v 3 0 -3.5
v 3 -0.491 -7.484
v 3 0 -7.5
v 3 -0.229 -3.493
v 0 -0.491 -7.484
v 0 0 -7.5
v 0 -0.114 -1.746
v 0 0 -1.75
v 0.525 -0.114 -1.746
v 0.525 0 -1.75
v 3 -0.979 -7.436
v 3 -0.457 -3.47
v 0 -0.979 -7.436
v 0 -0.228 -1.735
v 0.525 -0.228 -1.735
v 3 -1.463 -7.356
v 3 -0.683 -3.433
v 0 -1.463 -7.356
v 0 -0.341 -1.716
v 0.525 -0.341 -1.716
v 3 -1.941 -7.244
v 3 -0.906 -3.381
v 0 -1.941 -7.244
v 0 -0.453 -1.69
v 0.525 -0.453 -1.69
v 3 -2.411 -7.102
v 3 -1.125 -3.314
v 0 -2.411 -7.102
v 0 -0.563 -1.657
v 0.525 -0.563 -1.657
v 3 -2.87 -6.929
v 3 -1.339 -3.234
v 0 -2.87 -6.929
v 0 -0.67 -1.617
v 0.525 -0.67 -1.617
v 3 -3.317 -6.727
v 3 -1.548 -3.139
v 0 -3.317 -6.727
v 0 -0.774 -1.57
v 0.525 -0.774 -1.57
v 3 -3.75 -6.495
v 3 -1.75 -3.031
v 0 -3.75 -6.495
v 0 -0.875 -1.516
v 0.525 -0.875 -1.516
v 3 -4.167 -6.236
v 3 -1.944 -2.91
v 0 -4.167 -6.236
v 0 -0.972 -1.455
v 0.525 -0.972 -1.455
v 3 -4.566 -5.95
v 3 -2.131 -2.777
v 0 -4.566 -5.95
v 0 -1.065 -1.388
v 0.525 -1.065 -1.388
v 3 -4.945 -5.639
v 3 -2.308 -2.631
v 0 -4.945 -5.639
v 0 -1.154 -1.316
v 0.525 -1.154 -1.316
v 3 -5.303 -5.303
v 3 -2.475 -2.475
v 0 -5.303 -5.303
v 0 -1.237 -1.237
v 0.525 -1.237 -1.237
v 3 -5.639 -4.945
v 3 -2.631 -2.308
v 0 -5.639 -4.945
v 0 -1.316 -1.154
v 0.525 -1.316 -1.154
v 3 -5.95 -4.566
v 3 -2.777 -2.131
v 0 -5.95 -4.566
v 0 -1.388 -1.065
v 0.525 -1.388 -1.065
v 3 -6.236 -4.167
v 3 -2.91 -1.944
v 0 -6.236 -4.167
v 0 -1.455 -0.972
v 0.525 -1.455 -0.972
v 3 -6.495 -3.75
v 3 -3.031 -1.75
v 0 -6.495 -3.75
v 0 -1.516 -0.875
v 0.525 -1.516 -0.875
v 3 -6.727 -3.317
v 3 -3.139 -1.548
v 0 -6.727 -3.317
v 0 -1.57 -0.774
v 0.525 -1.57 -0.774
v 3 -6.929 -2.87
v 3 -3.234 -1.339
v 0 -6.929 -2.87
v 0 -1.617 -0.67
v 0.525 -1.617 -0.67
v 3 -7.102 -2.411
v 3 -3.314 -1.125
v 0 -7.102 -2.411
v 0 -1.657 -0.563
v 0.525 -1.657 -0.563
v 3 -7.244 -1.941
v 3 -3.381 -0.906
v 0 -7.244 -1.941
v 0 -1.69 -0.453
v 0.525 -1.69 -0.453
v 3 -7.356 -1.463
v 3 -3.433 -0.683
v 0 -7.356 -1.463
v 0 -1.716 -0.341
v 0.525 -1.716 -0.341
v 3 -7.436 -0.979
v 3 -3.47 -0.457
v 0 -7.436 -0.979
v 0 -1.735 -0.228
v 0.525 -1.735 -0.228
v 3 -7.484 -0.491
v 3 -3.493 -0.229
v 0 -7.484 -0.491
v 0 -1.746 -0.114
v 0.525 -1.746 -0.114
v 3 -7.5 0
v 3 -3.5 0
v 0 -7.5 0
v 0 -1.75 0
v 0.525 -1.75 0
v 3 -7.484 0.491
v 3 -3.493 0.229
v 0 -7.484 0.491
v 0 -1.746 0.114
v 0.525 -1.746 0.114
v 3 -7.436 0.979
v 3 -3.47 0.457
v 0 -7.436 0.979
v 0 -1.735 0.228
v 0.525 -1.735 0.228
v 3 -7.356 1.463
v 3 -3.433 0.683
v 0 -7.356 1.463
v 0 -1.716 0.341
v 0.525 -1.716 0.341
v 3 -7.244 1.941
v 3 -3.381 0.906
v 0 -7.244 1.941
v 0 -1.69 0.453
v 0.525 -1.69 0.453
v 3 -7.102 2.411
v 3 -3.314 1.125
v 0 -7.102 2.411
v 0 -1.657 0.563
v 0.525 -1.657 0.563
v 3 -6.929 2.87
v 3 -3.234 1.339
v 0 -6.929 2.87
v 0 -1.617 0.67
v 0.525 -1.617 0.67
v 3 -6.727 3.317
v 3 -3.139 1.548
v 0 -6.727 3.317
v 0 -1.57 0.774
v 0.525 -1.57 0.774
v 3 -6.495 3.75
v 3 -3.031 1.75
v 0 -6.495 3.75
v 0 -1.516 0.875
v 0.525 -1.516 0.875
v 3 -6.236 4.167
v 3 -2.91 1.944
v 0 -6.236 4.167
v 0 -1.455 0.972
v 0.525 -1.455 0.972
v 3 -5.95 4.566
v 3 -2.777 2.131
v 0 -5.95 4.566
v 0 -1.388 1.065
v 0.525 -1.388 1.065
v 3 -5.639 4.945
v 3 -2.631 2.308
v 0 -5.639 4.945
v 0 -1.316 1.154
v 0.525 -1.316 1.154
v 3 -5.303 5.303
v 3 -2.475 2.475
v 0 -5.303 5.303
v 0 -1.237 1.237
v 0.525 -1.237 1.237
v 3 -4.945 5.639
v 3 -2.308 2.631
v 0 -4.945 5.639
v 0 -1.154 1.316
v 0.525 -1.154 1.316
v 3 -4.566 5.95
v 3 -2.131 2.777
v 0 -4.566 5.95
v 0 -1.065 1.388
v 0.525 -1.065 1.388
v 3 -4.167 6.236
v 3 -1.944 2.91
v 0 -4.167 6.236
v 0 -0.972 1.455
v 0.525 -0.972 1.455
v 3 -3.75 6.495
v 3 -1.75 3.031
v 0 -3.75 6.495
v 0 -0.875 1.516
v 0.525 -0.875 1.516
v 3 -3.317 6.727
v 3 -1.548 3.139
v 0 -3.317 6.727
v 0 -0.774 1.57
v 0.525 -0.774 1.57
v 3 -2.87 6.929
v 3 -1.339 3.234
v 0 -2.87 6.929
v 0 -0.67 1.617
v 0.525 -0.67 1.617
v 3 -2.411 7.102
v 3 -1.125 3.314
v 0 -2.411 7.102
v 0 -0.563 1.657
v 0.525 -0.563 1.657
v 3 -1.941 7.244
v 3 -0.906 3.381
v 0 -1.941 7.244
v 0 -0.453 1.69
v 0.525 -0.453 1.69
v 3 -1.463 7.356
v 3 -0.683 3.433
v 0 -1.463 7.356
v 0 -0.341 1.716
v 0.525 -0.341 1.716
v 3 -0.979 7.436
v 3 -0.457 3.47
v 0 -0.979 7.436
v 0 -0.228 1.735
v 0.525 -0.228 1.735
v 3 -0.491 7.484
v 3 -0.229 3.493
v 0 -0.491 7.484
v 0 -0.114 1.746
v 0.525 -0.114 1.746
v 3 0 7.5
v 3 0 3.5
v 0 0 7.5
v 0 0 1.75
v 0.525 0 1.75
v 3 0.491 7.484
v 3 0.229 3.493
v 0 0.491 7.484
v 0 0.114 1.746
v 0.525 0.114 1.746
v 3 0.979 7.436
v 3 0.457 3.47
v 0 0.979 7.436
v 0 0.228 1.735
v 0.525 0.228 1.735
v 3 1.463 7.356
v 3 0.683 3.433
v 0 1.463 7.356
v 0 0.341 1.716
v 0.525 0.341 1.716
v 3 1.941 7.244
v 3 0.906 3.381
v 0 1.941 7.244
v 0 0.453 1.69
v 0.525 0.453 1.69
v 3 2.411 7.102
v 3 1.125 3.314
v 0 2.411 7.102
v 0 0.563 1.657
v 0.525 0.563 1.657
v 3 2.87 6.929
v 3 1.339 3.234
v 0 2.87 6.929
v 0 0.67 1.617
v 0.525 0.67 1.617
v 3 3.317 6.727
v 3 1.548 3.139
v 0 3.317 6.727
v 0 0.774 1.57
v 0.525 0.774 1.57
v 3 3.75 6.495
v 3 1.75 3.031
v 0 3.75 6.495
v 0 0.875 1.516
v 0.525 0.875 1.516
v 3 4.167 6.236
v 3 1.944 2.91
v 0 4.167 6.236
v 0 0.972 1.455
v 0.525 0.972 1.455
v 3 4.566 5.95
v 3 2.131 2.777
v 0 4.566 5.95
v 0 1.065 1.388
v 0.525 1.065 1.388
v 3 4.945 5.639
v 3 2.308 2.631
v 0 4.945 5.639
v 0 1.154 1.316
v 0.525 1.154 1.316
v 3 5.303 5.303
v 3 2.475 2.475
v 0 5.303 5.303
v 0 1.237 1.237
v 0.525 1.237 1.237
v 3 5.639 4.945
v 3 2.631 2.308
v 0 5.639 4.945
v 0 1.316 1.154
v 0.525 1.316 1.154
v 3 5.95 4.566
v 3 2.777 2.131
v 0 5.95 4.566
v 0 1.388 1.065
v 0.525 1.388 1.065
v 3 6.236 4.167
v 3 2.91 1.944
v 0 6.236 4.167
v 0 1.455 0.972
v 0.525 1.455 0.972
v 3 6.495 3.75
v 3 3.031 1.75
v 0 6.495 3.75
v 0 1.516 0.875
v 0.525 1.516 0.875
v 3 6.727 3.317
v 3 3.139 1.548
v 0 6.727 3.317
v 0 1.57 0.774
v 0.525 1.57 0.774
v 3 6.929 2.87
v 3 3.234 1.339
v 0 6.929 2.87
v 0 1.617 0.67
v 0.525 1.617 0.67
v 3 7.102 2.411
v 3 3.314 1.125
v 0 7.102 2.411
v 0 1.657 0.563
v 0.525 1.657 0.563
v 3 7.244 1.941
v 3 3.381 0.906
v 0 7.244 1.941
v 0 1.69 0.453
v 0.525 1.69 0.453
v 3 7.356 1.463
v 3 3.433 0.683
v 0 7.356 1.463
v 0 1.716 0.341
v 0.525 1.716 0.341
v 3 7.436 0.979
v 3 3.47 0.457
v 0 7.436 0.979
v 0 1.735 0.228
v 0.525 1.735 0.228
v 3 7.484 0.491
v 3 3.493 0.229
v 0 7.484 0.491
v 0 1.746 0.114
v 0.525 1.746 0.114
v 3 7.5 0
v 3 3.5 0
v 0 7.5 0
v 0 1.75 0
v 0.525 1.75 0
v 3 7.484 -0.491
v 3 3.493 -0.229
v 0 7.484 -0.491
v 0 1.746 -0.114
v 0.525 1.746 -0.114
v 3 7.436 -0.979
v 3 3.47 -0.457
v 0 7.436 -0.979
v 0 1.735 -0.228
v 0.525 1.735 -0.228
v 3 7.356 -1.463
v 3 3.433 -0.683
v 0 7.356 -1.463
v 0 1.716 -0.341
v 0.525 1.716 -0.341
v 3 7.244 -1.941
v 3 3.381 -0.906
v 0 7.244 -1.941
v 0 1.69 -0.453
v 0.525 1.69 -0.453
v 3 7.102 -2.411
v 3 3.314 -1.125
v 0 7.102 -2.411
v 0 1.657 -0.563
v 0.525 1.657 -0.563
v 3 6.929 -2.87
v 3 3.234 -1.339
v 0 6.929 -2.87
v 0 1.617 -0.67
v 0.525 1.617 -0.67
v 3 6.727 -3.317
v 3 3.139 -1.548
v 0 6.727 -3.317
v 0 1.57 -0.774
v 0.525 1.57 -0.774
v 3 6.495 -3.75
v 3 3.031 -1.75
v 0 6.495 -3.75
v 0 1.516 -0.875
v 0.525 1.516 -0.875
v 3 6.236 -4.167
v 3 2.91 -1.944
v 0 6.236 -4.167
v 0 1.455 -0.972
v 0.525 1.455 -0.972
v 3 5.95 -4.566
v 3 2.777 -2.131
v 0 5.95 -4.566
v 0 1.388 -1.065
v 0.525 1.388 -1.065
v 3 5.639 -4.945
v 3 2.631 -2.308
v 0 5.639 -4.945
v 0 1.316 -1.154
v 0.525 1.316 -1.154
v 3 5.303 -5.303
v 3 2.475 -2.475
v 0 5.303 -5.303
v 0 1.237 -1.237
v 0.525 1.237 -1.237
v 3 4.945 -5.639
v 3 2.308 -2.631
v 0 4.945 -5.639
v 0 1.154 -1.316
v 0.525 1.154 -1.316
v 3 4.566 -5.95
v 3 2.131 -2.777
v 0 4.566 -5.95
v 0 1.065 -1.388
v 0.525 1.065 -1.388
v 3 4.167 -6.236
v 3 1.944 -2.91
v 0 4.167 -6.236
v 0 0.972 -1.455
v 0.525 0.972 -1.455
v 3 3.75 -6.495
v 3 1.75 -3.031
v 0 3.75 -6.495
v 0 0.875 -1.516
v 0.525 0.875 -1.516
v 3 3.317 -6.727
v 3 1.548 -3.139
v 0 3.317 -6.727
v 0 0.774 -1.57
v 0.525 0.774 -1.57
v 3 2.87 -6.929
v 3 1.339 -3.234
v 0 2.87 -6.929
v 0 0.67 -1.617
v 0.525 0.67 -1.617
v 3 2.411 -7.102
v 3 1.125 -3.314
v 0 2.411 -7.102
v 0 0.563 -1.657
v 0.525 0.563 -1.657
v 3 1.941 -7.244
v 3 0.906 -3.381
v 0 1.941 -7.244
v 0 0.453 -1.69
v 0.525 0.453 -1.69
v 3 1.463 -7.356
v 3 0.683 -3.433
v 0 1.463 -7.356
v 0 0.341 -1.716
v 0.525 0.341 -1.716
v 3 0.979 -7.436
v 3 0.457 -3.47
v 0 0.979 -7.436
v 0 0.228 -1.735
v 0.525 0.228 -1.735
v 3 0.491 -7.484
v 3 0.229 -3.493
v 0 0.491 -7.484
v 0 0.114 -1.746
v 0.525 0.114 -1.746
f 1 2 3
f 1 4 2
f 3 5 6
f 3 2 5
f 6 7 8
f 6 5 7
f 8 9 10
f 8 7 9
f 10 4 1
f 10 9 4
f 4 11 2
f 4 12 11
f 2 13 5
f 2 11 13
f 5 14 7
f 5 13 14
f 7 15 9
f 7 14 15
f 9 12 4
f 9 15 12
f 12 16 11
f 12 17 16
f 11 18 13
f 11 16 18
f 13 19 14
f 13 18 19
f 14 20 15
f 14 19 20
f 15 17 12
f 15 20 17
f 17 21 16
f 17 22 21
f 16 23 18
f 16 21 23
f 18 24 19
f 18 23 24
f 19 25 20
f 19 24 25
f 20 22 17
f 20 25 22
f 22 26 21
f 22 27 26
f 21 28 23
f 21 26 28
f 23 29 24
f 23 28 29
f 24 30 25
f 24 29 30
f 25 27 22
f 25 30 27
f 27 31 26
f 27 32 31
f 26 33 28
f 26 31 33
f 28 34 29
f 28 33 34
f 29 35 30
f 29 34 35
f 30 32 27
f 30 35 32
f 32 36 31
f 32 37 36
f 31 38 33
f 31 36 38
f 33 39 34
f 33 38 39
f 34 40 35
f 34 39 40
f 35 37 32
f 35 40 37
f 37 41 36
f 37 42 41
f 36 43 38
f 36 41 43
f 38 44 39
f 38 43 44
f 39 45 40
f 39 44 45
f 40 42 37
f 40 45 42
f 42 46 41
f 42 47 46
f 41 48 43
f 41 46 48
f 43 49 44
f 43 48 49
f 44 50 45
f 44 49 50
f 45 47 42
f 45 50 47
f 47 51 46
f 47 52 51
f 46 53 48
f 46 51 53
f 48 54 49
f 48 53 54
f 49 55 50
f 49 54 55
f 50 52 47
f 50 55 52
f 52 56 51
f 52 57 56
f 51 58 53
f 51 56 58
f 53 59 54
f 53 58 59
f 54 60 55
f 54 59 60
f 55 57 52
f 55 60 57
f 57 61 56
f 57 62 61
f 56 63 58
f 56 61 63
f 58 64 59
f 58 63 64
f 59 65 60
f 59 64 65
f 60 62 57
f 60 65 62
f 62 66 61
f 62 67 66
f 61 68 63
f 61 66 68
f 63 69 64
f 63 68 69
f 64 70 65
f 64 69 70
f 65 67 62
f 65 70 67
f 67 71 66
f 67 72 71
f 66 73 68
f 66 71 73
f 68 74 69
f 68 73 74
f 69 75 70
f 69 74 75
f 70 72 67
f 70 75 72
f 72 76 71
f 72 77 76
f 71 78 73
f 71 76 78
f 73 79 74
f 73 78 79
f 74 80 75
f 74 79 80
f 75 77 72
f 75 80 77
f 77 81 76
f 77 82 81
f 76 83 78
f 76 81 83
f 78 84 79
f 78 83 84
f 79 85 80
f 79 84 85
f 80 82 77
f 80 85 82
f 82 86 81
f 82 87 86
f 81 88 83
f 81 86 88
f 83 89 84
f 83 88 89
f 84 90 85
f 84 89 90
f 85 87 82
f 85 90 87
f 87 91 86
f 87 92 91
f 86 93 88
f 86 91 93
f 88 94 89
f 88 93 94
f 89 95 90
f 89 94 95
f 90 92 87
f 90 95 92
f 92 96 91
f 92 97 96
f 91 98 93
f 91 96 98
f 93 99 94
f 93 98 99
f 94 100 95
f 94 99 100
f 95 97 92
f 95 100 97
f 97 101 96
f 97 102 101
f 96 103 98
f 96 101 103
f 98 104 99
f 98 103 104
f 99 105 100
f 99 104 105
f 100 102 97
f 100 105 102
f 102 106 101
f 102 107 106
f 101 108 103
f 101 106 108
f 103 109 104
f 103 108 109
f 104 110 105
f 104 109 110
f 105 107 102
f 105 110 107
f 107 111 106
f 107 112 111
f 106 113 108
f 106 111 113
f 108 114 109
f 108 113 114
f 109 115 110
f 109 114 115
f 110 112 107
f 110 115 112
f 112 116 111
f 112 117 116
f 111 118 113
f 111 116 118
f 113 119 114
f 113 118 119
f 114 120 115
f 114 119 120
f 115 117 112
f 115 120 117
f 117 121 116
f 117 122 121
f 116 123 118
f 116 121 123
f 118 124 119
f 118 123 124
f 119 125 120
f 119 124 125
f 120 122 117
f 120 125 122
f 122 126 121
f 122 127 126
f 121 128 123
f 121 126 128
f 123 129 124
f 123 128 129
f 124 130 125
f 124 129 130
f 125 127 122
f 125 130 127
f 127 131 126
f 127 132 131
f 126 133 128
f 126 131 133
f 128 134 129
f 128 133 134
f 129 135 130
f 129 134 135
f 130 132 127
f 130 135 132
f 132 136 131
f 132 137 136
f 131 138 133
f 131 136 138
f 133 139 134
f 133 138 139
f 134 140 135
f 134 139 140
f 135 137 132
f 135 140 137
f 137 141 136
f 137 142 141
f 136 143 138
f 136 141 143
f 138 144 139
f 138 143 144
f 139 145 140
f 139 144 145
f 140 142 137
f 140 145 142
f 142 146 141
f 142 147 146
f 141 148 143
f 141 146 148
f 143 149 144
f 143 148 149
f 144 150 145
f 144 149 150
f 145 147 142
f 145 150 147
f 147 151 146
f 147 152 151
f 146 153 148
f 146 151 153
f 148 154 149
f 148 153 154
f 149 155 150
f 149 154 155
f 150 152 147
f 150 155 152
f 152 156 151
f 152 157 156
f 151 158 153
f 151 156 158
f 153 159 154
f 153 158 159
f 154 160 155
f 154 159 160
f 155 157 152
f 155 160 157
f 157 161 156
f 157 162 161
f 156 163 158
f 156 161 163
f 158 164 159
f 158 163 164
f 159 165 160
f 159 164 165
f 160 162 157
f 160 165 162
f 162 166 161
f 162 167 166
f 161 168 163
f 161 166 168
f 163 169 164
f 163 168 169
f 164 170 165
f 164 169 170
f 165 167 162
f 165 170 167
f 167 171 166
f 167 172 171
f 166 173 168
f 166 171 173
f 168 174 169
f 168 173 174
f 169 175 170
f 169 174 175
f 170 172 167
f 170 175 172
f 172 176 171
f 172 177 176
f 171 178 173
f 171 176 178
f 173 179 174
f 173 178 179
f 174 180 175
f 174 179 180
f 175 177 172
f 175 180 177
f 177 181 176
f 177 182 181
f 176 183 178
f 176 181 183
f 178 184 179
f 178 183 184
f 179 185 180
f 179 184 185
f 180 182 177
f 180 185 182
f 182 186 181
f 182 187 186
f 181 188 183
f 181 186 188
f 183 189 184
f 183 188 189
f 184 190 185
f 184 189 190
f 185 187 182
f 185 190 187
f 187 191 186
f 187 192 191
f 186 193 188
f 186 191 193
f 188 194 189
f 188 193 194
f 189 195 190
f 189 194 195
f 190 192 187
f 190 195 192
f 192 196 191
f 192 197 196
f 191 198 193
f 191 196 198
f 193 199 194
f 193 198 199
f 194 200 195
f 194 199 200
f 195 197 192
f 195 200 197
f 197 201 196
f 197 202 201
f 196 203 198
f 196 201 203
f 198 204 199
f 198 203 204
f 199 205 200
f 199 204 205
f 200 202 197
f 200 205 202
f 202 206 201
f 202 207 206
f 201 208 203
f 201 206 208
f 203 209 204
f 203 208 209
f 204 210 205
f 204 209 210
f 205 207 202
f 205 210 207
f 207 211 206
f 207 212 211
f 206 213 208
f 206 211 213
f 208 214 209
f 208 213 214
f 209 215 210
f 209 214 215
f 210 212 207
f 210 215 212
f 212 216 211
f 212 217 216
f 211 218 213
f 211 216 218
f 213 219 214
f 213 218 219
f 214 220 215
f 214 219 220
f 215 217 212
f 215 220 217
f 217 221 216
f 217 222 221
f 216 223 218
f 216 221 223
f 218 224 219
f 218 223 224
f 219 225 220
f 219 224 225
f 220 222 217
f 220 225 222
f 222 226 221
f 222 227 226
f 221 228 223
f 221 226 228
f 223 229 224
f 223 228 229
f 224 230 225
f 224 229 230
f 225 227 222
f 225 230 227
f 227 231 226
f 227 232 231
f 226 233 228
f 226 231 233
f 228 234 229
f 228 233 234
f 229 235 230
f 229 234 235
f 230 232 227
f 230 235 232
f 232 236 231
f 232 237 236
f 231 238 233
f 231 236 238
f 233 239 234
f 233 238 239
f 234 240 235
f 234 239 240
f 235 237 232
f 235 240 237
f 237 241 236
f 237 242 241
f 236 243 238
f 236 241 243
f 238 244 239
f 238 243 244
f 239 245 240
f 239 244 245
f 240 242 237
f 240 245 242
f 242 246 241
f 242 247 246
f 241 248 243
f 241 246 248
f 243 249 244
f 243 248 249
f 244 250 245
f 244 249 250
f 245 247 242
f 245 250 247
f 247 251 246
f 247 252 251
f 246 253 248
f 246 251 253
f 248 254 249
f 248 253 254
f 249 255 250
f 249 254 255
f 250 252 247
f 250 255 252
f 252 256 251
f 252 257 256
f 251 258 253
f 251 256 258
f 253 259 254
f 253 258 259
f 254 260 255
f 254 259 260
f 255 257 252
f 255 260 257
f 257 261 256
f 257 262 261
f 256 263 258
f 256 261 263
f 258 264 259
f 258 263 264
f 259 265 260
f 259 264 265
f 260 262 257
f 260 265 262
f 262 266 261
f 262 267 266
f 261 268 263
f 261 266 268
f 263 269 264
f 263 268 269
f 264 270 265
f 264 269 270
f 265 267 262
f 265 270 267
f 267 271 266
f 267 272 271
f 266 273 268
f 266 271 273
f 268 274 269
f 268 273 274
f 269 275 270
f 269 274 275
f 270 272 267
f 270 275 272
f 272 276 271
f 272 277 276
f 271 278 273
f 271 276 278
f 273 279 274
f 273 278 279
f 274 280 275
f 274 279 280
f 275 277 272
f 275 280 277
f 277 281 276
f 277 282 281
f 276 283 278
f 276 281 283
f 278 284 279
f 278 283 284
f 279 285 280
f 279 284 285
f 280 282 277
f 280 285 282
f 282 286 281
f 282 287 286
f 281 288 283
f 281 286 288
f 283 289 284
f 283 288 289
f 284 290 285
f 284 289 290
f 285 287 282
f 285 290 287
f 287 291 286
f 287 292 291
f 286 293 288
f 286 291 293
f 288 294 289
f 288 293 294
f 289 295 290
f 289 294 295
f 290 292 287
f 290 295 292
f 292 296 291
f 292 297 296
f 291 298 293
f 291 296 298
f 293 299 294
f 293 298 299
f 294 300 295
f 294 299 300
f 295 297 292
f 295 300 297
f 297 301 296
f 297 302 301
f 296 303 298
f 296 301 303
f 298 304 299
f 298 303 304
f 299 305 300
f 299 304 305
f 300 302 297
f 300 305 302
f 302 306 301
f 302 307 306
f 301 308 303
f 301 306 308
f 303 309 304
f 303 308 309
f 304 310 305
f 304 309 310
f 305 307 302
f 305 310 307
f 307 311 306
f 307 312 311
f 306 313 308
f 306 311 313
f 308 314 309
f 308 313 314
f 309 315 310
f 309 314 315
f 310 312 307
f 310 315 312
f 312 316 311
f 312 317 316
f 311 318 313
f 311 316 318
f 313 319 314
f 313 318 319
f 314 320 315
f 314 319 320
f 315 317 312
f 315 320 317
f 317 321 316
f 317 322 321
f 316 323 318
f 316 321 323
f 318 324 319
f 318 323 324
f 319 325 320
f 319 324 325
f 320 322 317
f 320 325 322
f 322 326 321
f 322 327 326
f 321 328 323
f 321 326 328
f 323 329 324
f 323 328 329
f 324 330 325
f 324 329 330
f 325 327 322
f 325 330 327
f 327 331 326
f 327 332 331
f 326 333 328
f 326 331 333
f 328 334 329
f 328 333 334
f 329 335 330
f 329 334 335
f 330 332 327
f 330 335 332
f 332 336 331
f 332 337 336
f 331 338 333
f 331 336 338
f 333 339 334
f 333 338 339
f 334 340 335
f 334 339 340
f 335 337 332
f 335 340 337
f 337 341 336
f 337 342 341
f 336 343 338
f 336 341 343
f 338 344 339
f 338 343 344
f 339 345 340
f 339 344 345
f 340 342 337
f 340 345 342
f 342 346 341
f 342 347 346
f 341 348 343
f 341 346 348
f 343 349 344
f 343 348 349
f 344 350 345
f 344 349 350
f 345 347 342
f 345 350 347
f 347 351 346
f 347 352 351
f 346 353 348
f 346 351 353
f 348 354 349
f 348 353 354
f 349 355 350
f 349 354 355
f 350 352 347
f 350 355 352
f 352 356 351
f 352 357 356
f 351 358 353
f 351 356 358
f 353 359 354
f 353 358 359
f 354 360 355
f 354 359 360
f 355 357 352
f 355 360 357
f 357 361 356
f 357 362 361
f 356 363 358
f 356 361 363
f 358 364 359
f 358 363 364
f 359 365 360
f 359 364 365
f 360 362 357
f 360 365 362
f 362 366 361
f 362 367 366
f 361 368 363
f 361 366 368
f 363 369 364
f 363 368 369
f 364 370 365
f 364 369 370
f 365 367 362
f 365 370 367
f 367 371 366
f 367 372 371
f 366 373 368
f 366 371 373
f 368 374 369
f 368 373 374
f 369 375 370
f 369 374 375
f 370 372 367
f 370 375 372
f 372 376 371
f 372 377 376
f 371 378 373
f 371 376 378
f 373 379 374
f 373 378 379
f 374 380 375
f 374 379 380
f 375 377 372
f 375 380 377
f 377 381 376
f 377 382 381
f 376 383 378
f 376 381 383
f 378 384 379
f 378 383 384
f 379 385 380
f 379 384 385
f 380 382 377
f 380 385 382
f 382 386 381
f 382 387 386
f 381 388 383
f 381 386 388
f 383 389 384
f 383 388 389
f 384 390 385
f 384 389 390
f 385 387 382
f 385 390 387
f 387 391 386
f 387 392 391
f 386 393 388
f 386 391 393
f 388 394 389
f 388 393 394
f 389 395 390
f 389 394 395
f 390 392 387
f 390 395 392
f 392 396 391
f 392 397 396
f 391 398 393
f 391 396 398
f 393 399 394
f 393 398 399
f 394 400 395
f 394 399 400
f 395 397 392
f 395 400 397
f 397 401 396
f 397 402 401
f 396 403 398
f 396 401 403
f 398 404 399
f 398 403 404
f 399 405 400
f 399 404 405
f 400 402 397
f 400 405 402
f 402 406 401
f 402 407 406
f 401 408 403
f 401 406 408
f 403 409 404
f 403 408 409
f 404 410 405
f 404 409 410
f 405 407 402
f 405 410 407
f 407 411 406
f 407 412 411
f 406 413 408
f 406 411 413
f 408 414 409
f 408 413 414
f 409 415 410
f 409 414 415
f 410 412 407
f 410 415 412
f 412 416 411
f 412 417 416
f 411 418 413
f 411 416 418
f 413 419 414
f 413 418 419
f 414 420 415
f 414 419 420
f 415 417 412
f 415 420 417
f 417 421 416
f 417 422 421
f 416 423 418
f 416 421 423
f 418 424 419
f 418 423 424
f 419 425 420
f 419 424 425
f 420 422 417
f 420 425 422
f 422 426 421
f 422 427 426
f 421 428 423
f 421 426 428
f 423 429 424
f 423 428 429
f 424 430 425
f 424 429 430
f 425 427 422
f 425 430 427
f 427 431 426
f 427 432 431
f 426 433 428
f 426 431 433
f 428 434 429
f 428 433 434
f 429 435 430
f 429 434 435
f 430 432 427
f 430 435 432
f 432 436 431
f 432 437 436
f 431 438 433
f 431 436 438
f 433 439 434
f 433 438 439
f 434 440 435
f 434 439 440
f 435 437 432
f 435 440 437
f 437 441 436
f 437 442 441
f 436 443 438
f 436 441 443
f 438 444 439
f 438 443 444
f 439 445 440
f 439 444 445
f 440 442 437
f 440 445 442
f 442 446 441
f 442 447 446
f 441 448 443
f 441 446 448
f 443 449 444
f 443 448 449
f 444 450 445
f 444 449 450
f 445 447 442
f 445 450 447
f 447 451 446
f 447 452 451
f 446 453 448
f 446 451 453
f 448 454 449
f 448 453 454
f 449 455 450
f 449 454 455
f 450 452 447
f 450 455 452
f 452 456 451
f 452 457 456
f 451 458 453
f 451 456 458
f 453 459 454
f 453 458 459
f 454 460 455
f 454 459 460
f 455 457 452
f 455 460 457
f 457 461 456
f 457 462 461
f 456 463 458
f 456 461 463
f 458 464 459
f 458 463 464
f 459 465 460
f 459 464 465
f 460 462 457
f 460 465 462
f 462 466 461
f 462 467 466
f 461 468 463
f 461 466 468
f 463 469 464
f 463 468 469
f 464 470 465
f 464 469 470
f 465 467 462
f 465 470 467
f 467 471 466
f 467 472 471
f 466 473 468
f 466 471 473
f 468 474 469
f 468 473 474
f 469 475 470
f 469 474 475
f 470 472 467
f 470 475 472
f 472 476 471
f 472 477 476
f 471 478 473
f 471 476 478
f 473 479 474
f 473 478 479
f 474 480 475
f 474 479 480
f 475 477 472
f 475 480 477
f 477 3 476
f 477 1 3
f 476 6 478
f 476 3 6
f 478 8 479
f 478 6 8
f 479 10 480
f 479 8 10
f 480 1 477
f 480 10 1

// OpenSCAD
/**********************************************************************************************************************
 **
 ** parts/vitamins/magnet_ring_15x3.scad
 **
 ** This file renders a beveled ring magnet of the dimensions specified by the file name
 **
 **********************************************************************************************************************/

// for dimensions see https://www.mtsmagnete.de/magnetsysteme/mit-bohrung-und-senkung/neodym-scheibenmagnet-mit-bohrung-und-senkung-15x3mm-3-5mm-bohrung-n45/a-3807/

D = 15;      // outer diameter
H = 3;       // height
d1 = 3.5;    // bore
d2 = 7;      // bevel diameter

// calculate bevel depth
bd = sin(45) * (d2 - d1);

$fn = 96;
rotate([0, 90, 0]) 
	rotate_extrude()
		rotate([0, 0, 90])
		  	polygon(points = [
				[ 0, d1/2],
				[ 0, D/2],
				[ H, D/2],
				[ H, d2/2],
				[ H - bd, d1/2]
			]);
